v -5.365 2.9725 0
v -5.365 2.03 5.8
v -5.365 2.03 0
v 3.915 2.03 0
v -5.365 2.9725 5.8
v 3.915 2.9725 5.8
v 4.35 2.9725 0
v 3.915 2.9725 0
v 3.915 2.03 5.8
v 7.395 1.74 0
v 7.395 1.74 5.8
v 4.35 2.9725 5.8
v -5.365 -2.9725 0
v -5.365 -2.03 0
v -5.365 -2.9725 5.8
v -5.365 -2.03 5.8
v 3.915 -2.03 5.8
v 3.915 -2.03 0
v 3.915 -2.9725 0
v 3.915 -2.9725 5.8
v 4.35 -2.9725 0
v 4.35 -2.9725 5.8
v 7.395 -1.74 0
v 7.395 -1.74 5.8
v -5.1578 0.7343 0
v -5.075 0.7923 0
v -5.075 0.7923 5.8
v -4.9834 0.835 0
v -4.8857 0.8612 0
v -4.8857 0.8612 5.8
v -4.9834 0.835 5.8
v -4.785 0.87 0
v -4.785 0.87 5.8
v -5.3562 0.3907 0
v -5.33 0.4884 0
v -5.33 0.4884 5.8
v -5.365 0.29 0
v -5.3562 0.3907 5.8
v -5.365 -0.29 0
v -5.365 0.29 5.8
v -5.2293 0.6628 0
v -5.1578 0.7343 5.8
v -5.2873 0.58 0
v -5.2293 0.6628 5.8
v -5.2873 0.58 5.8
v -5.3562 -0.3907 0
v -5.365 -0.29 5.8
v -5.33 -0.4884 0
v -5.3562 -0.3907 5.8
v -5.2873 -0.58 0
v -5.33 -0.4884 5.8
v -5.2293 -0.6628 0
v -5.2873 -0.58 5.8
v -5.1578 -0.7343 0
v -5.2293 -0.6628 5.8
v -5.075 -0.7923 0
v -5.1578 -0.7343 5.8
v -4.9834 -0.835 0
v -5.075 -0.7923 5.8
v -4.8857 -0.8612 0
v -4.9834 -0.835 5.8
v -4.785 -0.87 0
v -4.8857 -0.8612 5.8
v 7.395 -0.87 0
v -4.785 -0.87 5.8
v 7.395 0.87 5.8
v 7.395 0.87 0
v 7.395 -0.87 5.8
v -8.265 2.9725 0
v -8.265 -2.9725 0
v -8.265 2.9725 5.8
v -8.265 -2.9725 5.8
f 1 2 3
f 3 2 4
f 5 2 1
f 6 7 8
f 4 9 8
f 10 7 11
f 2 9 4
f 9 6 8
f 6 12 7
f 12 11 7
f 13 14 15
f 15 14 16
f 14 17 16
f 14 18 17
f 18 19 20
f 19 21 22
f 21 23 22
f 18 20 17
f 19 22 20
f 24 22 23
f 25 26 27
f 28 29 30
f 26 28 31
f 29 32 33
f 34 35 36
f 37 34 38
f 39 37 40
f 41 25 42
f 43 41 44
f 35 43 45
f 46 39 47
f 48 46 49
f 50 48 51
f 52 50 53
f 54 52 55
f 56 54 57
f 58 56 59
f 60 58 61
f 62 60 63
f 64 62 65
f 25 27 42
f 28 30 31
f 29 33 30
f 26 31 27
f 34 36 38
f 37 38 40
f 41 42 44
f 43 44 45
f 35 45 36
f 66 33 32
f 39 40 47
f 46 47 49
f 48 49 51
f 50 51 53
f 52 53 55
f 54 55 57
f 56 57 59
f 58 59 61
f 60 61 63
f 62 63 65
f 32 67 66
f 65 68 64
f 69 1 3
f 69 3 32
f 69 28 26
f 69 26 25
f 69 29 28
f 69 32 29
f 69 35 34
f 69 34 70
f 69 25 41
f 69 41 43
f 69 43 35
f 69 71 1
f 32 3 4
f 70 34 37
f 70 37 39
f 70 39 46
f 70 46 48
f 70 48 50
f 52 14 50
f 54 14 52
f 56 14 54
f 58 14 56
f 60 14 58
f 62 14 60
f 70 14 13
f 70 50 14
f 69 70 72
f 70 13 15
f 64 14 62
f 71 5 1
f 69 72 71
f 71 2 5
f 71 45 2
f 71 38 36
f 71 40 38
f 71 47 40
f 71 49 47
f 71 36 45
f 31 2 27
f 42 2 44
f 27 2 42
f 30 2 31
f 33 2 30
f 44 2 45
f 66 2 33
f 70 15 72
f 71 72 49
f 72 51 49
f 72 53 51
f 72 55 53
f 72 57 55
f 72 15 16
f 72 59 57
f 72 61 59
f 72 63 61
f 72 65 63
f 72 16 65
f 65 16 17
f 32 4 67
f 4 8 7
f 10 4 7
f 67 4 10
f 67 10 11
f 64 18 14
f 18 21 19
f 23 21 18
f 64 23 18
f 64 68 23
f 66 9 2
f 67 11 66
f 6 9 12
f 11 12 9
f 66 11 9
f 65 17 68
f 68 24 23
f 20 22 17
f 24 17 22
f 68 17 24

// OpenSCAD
$fn = 50;

difference() {
	union() {
		translate(v = [0, 0, 0]) {
			rotate(a = [90, 0, 0]) {
				difference() {
					union() {
						translate(v = [-8.265, 0, -2.9724999999999997]) {
							cube(size = [15.66, 5.8, 5.944999999999999]);
						}
					}
					union() {
						translate(v = [0, 5.8999999999999995, 0]) {
							rotate(a = [90, 0, 0]) {
								linear_extrude(height = 6.0) {
									polygon(points = [[-5.365, -2.03], [3.915, -2.03], [3.915, -2.9725], [4.35, -2.9725], [7.495, -1.699524], [7.495, -3.0725], [-5.365, -3.0725]]);
								}
							}
						}
						translate(v = [0, 5.8999999999999995, 0]) {
							rotate(a = [90, 0, 0]) {
								linear_extrude(height = 6.0) {
									polygon(points = [[-5.365, 2.03], [3.915, 2.03], [3.915, 2.9725], [4.35, 2.9725], [7.495, 1.699524], [7.495, 3.0725], [-5.365, 3.0725]]);
								}
							}
						}
						translate(v = [0, 5.8999999999999995, 0]) {
							rotate(a = [90, 0, 0]) {
								linear_extrude(height = 6.0) {
									polygon(points = [[-5.365, 0.29], [-5.356188, 0.390716], [-5.330022, 0.488372], [-5.287295, 0.58], [-5.229306, 0.662817], [-5.157817, 0.734306], [-5.075, 0.792295], [-4.983372, 0.835022], [-4.885716, 0.861188], [-4.785, 0.87], [7.495, 0.87], [7.495, -0.87], [-4.785, -0.87], [-4.885716, -0.861188], [-4.983372, -0.835022], [-5.075, -0.792295], [-5.157817, -0.734306], [-5.229306, -0.662817], [-5.287295, -0.58], [-5.330022, -0.488372], [-5.356188, -0.390716], [-5.365, -0.29]]);
								}
							}
						}
					}
				}
			}
		}
	}
	union();
}
